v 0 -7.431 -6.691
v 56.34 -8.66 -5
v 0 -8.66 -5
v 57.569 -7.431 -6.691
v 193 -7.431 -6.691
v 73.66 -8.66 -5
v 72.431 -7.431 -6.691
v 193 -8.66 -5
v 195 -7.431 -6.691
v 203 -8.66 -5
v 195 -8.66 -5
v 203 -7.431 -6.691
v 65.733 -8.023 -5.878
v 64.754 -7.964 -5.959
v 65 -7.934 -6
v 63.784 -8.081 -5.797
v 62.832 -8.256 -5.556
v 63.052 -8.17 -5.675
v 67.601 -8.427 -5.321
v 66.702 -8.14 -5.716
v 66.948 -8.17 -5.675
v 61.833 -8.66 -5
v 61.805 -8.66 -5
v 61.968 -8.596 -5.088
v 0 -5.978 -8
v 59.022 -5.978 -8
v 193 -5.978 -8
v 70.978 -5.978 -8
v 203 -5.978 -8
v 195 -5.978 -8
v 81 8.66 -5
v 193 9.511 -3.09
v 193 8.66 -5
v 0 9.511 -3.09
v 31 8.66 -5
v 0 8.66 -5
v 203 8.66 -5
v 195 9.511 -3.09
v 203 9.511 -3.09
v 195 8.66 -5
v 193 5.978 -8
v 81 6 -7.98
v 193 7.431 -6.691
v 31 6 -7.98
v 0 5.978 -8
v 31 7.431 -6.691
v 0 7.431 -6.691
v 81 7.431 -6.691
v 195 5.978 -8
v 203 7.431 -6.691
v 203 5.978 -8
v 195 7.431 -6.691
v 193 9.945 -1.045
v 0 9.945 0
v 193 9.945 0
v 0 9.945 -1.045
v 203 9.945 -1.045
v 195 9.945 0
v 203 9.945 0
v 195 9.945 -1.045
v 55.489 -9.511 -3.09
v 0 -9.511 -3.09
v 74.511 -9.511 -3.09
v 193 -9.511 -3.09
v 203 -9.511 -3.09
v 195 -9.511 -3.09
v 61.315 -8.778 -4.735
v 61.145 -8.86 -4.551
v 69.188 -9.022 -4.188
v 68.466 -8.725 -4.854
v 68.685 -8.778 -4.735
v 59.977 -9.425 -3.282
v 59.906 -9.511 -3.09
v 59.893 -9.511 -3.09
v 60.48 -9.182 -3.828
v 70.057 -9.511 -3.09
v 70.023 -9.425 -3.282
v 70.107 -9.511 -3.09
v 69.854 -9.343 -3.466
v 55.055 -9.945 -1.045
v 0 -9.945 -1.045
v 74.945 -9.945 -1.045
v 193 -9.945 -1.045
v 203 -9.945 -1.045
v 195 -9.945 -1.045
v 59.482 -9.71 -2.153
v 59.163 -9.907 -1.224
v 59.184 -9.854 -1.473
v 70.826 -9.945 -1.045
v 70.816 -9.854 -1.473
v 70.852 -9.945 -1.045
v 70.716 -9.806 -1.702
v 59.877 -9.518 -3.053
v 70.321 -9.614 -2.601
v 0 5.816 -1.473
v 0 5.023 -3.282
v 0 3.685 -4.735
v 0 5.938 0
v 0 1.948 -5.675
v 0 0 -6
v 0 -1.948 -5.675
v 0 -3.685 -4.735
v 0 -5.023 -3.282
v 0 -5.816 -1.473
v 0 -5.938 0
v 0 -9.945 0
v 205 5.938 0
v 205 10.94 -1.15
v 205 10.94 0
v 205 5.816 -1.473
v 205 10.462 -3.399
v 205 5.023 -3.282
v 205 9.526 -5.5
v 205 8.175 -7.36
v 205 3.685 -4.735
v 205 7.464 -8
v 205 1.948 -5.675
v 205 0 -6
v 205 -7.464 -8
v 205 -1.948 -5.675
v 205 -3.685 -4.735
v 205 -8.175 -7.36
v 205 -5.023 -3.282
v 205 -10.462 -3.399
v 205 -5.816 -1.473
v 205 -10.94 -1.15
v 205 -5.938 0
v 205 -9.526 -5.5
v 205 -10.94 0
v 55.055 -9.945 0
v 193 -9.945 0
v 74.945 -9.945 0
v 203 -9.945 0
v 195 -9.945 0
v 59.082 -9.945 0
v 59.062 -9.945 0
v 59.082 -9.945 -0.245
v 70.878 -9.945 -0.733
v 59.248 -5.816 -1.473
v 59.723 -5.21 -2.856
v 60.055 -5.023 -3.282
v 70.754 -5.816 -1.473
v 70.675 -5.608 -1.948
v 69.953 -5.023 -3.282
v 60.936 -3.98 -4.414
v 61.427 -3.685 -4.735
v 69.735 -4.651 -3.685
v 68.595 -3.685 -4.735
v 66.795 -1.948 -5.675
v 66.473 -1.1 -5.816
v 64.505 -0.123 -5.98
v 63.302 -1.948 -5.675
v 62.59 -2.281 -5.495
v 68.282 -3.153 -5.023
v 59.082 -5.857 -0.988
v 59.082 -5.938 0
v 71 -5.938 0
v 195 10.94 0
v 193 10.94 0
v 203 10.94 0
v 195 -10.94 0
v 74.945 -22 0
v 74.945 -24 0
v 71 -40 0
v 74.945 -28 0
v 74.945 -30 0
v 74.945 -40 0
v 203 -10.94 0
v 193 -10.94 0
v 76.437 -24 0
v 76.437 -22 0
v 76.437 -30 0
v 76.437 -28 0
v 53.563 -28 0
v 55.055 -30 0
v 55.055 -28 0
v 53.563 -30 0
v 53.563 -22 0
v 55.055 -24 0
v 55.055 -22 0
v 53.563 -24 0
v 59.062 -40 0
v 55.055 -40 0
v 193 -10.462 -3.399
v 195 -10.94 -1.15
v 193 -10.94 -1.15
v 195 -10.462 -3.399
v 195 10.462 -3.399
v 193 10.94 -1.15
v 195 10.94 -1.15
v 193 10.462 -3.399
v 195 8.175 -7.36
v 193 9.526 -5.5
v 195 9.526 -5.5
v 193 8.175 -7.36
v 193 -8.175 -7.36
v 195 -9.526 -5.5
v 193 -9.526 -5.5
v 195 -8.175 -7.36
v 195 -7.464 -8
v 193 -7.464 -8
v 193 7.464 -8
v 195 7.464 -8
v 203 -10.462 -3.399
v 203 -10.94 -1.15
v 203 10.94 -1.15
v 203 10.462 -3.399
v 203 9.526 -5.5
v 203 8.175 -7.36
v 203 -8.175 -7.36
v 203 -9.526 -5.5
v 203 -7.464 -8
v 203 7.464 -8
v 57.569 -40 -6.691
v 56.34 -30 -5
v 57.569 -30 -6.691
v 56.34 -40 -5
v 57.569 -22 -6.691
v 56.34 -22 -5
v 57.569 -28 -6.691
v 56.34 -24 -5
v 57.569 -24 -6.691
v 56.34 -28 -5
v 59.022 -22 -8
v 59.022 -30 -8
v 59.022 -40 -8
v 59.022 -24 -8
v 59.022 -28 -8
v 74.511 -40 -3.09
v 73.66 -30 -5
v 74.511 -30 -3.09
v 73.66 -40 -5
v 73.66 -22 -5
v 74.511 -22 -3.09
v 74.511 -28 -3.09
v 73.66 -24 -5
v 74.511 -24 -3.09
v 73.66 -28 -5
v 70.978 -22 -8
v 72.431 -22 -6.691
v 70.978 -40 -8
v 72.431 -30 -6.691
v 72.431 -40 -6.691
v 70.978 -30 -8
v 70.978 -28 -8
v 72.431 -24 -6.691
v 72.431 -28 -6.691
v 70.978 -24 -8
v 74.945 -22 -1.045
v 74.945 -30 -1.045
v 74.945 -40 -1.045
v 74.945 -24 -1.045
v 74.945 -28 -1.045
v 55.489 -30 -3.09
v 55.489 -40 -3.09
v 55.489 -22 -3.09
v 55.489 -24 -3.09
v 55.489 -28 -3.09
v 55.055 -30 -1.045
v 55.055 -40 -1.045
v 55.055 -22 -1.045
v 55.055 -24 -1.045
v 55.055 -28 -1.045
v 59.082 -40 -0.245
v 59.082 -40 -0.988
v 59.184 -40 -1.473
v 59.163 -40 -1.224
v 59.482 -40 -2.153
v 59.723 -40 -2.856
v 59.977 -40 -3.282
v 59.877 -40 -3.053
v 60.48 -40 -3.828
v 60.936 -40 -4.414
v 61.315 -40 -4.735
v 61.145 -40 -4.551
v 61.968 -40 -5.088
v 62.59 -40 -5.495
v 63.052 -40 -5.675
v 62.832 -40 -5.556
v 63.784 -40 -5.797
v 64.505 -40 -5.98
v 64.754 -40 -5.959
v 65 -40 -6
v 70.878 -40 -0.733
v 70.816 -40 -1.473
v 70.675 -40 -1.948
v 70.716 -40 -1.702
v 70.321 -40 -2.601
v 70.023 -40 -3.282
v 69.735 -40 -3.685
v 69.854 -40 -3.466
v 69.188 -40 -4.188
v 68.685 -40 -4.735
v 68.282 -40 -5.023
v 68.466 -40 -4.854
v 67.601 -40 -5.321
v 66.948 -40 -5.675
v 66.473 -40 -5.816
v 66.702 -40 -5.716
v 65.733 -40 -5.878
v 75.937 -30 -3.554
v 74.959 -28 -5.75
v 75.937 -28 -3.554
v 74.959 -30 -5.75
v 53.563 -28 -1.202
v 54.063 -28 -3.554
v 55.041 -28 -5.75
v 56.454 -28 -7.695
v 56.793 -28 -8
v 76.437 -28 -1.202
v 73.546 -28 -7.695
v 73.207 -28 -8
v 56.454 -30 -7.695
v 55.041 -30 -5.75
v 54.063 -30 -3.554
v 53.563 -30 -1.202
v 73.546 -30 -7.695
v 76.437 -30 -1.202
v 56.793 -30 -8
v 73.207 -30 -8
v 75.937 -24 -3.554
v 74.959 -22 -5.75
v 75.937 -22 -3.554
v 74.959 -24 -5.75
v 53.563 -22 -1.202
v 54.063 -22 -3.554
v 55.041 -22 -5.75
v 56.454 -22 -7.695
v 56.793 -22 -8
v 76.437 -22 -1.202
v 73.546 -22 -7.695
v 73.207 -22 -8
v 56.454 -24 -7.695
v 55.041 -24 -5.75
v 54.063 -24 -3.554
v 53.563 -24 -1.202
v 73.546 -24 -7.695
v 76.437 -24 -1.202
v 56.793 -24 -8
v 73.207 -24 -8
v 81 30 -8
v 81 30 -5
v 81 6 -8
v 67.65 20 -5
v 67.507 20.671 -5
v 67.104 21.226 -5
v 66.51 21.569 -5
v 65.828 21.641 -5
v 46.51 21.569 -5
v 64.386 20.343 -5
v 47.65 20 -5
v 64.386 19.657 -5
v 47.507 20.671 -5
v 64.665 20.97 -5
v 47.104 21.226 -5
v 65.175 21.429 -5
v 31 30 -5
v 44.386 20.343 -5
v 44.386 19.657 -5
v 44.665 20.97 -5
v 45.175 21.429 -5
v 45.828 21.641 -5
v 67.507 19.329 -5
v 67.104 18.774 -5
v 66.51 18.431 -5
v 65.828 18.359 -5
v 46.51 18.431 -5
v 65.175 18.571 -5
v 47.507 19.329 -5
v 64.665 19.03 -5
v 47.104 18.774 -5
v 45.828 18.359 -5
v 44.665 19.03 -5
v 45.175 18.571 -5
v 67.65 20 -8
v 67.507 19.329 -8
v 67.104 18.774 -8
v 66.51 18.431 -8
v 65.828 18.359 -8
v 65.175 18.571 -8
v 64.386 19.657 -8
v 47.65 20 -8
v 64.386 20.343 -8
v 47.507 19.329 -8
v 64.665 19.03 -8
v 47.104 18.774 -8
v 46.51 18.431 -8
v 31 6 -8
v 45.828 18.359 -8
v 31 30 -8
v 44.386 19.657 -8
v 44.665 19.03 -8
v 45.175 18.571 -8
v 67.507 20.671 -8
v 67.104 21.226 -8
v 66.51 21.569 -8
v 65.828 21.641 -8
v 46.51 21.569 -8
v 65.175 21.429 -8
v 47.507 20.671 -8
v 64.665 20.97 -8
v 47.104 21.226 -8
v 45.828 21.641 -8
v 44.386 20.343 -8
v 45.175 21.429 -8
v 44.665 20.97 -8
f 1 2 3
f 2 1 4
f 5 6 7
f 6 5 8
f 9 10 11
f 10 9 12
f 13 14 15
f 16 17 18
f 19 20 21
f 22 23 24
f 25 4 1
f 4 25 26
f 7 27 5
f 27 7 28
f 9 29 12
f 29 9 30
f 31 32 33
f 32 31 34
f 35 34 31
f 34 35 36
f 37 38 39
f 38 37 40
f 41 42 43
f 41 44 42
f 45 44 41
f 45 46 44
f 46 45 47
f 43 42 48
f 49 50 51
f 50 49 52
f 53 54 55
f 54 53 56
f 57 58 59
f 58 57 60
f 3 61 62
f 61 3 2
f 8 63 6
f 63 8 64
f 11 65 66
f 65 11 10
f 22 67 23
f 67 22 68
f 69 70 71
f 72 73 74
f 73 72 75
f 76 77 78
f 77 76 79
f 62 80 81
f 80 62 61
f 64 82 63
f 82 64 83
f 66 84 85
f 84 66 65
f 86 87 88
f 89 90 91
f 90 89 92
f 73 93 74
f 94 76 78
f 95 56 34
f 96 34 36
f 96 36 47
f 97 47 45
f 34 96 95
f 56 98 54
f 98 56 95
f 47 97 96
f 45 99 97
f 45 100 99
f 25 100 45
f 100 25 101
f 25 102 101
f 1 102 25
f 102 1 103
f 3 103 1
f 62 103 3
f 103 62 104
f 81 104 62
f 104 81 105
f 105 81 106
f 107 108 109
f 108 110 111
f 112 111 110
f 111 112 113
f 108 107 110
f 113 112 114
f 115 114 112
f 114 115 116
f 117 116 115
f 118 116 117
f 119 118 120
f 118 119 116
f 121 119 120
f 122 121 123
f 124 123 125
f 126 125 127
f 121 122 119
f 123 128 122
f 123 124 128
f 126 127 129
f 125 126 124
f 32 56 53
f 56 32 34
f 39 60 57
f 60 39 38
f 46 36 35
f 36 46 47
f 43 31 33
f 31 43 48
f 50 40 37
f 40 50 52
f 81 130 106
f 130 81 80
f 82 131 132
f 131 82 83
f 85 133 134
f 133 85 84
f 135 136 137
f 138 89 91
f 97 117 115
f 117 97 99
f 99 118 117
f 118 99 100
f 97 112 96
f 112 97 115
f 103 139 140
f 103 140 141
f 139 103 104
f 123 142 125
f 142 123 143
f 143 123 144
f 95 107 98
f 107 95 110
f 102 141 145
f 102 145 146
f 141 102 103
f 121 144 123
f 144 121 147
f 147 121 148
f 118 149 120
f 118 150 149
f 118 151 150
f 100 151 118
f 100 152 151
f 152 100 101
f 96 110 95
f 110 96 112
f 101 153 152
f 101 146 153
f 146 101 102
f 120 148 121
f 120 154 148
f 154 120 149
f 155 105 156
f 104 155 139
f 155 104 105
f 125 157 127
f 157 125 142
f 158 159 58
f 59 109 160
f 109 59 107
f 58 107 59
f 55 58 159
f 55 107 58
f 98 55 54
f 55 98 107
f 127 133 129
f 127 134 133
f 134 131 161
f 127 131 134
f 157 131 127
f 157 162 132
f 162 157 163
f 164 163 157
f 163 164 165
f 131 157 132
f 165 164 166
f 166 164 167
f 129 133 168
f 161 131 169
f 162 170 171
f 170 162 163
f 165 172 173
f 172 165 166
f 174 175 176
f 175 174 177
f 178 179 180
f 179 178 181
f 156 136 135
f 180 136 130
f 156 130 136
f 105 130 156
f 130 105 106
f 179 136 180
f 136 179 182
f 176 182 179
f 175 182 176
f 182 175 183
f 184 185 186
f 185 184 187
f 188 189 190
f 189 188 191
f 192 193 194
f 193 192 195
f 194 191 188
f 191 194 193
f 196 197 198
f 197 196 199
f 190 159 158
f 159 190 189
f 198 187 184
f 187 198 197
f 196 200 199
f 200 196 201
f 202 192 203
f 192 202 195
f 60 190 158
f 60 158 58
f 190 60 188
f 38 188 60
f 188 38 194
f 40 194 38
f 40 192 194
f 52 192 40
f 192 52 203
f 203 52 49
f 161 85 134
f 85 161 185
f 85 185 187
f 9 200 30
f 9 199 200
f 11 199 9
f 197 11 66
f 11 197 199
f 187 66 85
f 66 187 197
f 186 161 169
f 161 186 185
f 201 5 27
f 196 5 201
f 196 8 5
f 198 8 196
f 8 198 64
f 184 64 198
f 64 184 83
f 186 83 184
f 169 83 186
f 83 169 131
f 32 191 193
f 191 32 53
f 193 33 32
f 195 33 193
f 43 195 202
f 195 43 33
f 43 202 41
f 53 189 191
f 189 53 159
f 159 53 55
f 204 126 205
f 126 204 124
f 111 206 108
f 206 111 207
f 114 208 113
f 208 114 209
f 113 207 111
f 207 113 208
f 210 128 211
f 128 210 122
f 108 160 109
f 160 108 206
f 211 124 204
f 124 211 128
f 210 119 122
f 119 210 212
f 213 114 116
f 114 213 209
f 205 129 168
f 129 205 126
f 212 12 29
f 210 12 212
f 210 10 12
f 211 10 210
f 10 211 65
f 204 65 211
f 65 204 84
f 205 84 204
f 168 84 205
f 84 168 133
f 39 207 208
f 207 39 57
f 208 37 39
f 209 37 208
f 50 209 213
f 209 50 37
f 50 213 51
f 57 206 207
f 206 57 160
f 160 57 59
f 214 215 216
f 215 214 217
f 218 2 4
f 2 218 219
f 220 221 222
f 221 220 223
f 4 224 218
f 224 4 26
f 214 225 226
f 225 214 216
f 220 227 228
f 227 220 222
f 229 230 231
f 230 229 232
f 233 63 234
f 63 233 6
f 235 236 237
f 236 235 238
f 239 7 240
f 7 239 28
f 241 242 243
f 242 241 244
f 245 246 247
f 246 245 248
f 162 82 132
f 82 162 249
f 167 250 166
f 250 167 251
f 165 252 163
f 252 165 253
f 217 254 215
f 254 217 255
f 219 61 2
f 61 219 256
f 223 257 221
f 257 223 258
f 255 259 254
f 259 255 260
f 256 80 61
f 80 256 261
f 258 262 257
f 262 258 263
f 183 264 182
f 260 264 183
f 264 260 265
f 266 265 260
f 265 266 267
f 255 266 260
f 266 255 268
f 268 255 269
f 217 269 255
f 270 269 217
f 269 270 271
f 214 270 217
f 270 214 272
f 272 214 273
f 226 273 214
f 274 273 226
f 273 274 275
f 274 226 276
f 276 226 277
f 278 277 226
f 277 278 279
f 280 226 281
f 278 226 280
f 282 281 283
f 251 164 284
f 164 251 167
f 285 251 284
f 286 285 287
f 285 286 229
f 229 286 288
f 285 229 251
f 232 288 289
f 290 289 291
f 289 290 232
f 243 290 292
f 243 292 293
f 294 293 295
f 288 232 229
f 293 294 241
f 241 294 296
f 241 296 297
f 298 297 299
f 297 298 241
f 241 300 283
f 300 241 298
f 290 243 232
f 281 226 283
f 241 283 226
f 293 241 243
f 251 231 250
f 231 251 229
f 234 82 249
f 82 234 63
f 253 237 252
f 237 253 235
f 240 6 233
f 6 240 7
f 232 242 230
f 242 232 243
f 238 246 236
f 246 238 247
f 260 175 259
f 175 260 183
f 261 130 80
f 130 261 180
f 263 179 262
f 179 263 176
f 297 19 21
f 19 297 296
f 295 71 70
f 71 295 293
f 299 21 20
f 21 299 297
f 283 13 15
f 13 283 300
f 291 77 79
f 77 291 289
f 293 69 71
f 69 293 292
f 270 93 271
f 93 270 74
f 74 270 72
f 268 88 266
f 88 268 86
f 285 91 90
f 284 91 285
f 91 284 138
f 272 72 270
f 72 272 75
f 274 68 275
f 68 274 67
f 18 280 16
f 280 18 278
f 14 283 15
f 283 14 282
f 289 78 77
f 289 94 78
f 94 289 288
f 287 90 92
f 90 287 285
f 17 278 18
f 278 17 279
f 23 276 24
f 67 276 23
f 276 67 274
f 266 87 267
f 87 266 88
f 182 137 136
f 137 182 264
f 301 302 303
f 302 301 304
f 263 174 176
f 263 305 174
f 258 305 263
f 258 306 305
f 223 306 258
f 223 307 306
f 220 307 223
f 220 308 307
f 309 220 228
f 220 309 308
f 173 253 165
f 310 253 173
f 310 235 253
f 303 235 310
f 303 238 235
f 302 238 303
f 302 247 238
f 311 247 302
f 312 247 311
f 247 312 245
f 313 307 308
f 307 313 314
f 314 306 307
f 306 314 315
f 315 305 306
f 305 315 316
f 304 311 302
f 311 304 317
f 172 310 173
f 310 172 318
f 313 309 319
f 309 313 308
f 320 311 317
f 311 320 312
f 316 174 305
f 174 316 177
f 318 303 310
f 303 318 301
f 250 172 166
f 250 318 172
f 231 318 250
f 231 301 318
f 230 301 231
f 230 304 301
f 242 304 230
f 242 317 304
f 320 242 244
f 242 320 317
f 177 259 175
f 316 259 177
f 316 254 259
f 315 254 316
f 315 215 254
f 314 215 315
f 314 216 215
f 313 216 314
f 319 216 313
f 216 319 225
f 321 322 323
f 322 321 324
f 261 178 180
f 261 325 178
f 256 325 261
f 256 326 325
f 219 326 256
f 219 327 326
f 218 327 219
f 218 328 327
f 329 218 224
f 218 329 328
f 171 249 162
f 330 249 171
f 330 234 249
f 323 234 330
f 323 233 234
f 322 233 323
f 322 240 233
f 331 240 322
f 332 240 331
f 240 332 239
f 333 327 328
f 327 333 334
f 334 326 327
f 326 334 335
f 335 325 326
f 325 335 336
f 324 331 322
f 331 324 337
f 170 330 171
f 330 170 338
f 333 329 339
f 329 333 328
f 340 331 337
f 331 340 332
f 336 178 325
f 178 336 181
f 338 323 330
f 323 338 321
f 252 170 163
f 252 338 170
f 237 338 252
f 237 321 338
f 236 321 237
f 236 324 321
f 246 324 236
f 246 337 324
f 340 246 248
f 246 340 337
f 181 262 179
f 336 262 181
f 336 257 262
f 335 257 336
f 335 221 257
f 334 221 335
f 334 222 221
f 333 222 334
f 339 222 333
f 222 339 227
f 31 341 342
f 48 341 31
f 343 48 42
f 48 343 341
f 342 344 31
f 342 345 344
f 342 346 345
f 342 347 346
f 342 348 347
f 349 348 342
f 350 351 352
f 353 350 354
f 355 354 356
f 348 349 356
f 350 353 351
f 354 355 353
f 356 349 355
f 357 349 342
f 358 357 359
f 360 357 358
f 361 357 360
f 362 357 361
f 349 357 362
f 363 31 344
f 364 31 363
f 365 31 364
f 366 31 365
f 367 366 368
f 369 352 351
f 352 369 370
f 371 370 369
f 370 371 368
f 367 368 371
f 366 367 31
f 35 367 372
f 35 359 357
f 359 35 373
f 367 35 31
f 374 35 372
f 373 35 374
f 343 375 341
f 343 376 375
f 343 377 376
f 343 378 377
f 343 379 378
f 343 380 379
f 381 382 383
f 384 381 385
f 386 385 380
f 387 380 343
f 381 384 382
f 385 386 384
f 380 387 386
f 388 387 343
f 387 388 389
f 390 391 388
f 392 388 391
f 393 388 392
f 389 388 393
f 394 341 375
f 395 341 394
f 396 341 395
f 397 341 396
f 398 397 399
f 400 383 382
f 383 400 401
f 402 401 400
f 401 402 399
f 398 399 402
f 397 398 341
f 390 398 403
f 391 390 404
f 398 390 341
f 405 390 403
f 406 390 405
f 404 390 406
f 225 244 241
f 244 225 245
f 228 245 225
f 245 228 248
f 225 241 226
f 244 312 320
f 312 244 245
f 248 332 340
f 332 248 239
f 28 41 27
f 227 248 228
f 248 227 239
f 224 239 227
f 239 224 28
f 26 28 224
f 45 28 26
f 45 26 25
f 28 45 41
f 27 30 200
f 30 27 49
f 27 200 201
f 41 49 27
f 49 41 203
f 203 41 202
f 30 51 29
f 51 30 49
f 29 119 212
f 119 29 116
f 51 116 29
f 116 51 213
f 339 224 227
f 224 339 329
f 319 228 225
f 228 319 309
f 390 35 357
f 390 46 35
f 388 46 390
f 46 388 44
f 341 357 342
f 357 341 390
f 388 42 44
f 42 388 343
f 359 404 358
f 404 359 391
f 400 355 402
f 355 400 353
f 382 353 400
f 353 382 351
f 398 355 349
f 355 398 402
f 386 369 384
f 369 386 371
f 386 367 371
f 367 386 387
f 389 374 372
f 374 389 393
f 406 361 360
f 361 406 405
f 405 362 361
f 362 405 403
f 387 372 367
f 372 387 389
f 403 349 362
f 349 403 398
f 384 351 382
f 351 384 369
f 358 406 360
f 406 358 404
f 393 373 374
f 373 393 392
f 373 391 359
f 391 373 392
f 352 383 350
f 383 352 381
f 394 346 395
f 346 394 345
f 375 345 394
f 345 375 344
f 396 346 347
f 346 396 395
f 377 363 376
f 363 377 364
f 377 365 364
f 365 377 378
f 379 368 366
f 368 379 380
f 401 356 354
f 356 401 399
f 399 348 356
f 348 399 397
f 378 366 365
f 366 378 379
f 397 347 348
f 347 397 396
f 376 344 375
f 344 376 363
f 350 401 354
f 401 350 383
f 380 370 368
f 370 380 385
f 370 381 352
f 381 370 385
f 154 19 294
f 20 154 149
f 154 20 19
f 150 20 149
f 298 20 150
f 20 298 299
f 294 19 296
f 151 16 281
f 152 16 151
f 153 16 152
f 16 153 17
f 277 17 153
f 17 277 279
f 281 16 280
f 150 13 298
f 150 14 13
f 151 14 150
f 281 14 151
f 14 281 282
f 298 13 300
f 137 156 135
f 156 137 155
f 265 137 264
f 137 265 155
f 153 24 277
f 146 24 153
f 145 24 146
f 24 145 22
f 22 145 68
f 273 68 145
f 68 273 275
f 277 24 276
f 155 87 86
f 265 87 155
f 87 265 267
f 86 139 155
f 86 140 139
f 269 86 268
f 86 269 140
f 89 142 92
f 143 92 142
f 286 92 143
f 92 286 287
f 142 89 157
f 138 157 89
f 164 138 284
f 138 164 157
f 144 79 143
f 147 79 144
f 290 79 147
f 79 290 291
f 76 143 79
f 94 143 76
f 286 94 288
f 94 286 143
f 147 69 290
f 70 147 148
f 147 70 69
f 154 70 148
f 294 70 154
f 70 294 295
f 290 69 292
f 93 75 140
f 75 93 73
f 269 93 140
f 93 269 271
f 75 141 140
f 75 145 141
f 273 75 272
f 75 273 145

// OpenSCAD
// file: ../lib/common_wire_mount.scad
/* Common code for wiring mounts. See top_wire_mount.scad and 
 * bottom_wire_mount.scad for the model.
 * Copyright 2021 Alex Volkov <alex@flamy.ca>
 * License: Attribution-ShareAlike 4.0 International (CC BY-SA)
 * https://creativecommons.org/licenses/by-sa/4.0/
 *
 * Version 1.0 2021-04-10 Initial publication
 */


m3_bolt_d = 3.3;

module cable_mount(cable_len, out_d, in_d){
    rotate([0, 90, 0 ]){
    difference(){
        cylinder(d=out_d, h=cable_len);
        cylinder(d=in_d, h=cable_len);
        translate([-out_d/2, 0, cable_len/2])
            cube([out_d, out_d, cable_len], center=true);
        }
    }
}


module plate_mount_top(y_offset, thickness=2){
    difference(){
        translate([-5, 0, 0]){
            cube([50, 25, thickness]);
            cube([15, 7, thickness*2]);
            translate([35, 0, 0, ])
                cube([15, 7, thickness*2]);
        }
        translate([10, y_offset, 0])
            cylinder(d=m3_bolt_d, h=10, $fn=15);
        translate([30, y_offset, 0])
            cylinder(d=m3_bolt_d, h=10, $fn=15);
    }
    
}

module plate_mount(y_offset, thickness=2){
    difference(){
        translate([-5, 0, 0]) cube([50, 24, thickness]);
        translate([10, y_offset, 0])
            cylinder(d=m3_bolt_d, h=10, $fn=15);
        translate([30, y_offset, 0])
            cylinder(d=m3_bolt_d, h=10, $fn=15);
    }
    
}
// main file
/* Bottom wire mount for MKS GEN 1.4 for wiring heated bed and power cables
 * Copyright 2021 Alex Volkov <alex@flamy.ca>
 * License: Attribution-ShareAlike 4.0 International (CC BY-SA)
 * https://creativecommons.org/licenses/by-sa/4.0/
 *
 * Version 1.0 2021-04-10 Initial publication
 */
 
include <../lib/common_wire_mount.scad>



module bottom_wire_holder(){
    inner_pipe_d = 12;
    outer_d = 20;
    vert_pipe_offset = 65;
    vert_pipe_len = 40;
    heated_bed_connector = 205;
    bottom_shave_offset = 2;
    difference(){
        union(){
            cable_mount(heated_bed_connector, outer_d, inner_pipe_d);
            translate([heated_bed_connector - 12, 0, 0])
                cable_mount(2, outer_d+2, inner_pipe_d);
            translate([heated_bed_connector - 2 , 0, 0])
                cable_mount(2, outer_d+2, inner_pipe_d);
            // vertical pipe #1
            translate([vert_pipe_offset, 0 , 0]){
                rotate([0,0,270]){
                    cable_mount(vert_pipe_len, outer_d , inner_pipe_d);
                    translate([28, 0, 0])
                        cable_mount(2, outer_d + 3, inner_pipe_d + 5);
                    translate([22, 0, 0])
                        cable_mount(2, outer_d + 3, inner_pipe_d + 5);
                }
            }
            // vertical pipe #2
            /*
            pipe_2 = 60;
            translate([vert_pipe_offset + 60, 0 , 0]){
                rotate([0,0,270]){
                    cable_mount(pipe_2, outer_d, inner_pipe_d);
                    translate([pipe_2, 0, 0])
                        cable_mount(2, outer_d+2, inner_pipe_d);
                    translate([pipe_2 - 10, 0, 0])
                        cable_mount(2, outer_d+2, inner_pipe_d);
                }
            }
            */
            translate([36, 6, -outer_d/2 + 2])
                plate_mount(14, 3);
        }
        // horizontal cutout
        rotate([0, 90, 0 ])
            cylinder(d=inner_pipe_d, h=heated_bed_connector);
        // vertical pipe cutout #1
        
        translate([vert_pipe_offset, 0, 0])
            rotate([90, 0, 0 ])
                cylinder(d=inner_pipe_d, h=vert_pipe_len);
        // vertical pipe cutout #2
        /*
        translate([vert_pipe_offset + 60, 20, 0])
            rotate([90, 0, 0 ])
                cylinder(d=inner_pipe_d, h=heated_bed_connector);
        */
        //shave off bottom
        
        translate([0, -70, -outer_d + bottom_shave_offset])
            cube([heated_bed_connector, 100, 10]);
        
    }
}

bottom_wire_holder();
